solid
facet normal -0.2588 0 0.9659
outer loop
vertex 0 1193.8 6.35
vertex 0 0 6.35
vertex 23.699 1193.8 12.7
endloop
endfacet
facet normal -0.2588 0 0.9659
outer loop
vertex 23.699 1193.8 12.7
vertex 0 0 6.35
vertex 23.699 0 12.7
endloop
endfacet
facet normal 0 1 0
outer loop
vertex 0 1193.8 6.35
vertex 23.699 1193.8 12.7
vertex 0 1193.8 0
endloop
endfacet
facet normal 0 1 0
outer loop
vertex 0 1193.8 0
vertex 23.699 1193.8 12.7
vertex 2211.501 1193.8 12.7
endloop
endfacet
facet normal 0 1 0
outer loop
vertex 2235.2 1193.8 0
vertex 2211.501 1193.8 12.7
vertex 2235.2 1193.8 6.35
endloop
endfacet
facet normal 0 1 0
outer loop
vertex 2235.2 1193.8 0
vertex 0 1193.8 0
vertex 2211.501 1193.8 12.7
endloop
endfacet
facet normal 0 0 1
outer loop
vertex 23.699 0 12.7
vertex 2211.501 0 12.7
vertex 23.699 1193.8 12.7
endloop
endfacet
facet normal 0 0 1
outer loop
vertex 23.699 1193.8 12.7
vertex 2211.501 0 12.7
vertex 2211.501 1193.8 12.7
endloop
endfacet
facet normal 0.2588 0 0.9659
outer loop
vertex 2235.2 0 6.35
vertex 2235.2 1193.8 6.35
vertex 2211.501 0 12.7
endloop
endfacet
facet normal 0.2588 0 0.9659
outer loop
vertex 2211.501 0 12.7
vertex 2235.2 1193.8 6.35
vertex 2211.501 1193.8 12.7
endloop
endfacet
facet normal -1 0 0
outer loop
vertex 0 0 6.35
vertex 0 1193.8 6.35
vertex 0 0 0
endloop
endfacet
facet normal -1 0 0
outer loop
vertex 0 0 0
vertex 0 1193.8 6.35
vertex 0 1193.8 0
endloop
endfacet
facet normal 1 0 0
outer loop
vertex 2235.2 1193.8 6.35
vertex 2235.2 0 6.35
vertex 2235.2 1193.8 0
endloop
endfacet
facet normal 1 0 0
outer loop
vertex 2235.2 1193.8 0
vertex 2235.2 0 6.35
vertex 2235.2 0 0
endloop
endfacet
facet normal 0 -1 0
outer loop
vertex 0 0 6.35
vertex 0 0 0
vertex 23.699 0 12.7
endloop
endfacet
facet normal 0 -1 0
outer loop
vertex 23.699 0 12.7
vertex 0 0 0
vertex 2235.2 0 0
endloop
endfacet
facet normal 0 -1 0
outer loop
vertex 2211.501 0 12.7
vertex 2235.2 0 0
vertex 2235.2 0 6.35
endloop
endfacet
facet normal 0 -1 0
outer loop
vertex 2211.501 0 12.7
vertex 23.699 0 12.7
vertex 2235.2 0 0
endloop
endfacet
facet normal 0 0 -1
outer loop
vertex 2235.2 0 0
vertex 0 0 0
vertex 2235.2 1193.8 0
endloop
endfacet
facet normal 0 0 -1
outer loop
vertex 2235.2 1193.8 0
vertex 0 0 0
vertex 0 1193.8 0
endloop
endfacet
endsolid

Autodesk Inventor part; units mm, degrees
ref_plane "YZ Plane" through (0, 0, 0) normal (1, 0, 0) x (0, 1, 0)
ref_plane "XZ Plane" through (0, 0, 0) normal (0, 1, 0) x (-1, 0, 0)
ref_plane "XY Plane" through (0, 0, 0) normal (0, 0, 1) x (1, 0, 0)
sketch "Sketch1" plane through (0, 0, 0) normal (0, 0, 1) x (1, 0, 0)
  line L0 (0, 0) -> (2235.2, 0)
  line L1 (2235.2, 0) -> (2235.2, 1193.8)
  line L2 (2235.2, 1193.8) -> (0, 1193.8)
  line L3 (0, 1193.8) -> (0, 0)
  dimension "d0" = 1193.8
  dimension "d1" = 2235.2
extrude "Extrusion1" add sketch "Sketch1" along normal blind 12.7
chamfer "Chamfer1" distance 6.35 angle 75 1 edges at (2235.2, 596.9, 12.7) measured on face at (2235.2, 397.9333, 4.2333)
chamfer "Chamfer3" distance 6.35 angle 75 1 edges at (0, 596.9, 12.7) measured on face at (0, 795.8667, 4.2333)
properties part number "GE-12018"
